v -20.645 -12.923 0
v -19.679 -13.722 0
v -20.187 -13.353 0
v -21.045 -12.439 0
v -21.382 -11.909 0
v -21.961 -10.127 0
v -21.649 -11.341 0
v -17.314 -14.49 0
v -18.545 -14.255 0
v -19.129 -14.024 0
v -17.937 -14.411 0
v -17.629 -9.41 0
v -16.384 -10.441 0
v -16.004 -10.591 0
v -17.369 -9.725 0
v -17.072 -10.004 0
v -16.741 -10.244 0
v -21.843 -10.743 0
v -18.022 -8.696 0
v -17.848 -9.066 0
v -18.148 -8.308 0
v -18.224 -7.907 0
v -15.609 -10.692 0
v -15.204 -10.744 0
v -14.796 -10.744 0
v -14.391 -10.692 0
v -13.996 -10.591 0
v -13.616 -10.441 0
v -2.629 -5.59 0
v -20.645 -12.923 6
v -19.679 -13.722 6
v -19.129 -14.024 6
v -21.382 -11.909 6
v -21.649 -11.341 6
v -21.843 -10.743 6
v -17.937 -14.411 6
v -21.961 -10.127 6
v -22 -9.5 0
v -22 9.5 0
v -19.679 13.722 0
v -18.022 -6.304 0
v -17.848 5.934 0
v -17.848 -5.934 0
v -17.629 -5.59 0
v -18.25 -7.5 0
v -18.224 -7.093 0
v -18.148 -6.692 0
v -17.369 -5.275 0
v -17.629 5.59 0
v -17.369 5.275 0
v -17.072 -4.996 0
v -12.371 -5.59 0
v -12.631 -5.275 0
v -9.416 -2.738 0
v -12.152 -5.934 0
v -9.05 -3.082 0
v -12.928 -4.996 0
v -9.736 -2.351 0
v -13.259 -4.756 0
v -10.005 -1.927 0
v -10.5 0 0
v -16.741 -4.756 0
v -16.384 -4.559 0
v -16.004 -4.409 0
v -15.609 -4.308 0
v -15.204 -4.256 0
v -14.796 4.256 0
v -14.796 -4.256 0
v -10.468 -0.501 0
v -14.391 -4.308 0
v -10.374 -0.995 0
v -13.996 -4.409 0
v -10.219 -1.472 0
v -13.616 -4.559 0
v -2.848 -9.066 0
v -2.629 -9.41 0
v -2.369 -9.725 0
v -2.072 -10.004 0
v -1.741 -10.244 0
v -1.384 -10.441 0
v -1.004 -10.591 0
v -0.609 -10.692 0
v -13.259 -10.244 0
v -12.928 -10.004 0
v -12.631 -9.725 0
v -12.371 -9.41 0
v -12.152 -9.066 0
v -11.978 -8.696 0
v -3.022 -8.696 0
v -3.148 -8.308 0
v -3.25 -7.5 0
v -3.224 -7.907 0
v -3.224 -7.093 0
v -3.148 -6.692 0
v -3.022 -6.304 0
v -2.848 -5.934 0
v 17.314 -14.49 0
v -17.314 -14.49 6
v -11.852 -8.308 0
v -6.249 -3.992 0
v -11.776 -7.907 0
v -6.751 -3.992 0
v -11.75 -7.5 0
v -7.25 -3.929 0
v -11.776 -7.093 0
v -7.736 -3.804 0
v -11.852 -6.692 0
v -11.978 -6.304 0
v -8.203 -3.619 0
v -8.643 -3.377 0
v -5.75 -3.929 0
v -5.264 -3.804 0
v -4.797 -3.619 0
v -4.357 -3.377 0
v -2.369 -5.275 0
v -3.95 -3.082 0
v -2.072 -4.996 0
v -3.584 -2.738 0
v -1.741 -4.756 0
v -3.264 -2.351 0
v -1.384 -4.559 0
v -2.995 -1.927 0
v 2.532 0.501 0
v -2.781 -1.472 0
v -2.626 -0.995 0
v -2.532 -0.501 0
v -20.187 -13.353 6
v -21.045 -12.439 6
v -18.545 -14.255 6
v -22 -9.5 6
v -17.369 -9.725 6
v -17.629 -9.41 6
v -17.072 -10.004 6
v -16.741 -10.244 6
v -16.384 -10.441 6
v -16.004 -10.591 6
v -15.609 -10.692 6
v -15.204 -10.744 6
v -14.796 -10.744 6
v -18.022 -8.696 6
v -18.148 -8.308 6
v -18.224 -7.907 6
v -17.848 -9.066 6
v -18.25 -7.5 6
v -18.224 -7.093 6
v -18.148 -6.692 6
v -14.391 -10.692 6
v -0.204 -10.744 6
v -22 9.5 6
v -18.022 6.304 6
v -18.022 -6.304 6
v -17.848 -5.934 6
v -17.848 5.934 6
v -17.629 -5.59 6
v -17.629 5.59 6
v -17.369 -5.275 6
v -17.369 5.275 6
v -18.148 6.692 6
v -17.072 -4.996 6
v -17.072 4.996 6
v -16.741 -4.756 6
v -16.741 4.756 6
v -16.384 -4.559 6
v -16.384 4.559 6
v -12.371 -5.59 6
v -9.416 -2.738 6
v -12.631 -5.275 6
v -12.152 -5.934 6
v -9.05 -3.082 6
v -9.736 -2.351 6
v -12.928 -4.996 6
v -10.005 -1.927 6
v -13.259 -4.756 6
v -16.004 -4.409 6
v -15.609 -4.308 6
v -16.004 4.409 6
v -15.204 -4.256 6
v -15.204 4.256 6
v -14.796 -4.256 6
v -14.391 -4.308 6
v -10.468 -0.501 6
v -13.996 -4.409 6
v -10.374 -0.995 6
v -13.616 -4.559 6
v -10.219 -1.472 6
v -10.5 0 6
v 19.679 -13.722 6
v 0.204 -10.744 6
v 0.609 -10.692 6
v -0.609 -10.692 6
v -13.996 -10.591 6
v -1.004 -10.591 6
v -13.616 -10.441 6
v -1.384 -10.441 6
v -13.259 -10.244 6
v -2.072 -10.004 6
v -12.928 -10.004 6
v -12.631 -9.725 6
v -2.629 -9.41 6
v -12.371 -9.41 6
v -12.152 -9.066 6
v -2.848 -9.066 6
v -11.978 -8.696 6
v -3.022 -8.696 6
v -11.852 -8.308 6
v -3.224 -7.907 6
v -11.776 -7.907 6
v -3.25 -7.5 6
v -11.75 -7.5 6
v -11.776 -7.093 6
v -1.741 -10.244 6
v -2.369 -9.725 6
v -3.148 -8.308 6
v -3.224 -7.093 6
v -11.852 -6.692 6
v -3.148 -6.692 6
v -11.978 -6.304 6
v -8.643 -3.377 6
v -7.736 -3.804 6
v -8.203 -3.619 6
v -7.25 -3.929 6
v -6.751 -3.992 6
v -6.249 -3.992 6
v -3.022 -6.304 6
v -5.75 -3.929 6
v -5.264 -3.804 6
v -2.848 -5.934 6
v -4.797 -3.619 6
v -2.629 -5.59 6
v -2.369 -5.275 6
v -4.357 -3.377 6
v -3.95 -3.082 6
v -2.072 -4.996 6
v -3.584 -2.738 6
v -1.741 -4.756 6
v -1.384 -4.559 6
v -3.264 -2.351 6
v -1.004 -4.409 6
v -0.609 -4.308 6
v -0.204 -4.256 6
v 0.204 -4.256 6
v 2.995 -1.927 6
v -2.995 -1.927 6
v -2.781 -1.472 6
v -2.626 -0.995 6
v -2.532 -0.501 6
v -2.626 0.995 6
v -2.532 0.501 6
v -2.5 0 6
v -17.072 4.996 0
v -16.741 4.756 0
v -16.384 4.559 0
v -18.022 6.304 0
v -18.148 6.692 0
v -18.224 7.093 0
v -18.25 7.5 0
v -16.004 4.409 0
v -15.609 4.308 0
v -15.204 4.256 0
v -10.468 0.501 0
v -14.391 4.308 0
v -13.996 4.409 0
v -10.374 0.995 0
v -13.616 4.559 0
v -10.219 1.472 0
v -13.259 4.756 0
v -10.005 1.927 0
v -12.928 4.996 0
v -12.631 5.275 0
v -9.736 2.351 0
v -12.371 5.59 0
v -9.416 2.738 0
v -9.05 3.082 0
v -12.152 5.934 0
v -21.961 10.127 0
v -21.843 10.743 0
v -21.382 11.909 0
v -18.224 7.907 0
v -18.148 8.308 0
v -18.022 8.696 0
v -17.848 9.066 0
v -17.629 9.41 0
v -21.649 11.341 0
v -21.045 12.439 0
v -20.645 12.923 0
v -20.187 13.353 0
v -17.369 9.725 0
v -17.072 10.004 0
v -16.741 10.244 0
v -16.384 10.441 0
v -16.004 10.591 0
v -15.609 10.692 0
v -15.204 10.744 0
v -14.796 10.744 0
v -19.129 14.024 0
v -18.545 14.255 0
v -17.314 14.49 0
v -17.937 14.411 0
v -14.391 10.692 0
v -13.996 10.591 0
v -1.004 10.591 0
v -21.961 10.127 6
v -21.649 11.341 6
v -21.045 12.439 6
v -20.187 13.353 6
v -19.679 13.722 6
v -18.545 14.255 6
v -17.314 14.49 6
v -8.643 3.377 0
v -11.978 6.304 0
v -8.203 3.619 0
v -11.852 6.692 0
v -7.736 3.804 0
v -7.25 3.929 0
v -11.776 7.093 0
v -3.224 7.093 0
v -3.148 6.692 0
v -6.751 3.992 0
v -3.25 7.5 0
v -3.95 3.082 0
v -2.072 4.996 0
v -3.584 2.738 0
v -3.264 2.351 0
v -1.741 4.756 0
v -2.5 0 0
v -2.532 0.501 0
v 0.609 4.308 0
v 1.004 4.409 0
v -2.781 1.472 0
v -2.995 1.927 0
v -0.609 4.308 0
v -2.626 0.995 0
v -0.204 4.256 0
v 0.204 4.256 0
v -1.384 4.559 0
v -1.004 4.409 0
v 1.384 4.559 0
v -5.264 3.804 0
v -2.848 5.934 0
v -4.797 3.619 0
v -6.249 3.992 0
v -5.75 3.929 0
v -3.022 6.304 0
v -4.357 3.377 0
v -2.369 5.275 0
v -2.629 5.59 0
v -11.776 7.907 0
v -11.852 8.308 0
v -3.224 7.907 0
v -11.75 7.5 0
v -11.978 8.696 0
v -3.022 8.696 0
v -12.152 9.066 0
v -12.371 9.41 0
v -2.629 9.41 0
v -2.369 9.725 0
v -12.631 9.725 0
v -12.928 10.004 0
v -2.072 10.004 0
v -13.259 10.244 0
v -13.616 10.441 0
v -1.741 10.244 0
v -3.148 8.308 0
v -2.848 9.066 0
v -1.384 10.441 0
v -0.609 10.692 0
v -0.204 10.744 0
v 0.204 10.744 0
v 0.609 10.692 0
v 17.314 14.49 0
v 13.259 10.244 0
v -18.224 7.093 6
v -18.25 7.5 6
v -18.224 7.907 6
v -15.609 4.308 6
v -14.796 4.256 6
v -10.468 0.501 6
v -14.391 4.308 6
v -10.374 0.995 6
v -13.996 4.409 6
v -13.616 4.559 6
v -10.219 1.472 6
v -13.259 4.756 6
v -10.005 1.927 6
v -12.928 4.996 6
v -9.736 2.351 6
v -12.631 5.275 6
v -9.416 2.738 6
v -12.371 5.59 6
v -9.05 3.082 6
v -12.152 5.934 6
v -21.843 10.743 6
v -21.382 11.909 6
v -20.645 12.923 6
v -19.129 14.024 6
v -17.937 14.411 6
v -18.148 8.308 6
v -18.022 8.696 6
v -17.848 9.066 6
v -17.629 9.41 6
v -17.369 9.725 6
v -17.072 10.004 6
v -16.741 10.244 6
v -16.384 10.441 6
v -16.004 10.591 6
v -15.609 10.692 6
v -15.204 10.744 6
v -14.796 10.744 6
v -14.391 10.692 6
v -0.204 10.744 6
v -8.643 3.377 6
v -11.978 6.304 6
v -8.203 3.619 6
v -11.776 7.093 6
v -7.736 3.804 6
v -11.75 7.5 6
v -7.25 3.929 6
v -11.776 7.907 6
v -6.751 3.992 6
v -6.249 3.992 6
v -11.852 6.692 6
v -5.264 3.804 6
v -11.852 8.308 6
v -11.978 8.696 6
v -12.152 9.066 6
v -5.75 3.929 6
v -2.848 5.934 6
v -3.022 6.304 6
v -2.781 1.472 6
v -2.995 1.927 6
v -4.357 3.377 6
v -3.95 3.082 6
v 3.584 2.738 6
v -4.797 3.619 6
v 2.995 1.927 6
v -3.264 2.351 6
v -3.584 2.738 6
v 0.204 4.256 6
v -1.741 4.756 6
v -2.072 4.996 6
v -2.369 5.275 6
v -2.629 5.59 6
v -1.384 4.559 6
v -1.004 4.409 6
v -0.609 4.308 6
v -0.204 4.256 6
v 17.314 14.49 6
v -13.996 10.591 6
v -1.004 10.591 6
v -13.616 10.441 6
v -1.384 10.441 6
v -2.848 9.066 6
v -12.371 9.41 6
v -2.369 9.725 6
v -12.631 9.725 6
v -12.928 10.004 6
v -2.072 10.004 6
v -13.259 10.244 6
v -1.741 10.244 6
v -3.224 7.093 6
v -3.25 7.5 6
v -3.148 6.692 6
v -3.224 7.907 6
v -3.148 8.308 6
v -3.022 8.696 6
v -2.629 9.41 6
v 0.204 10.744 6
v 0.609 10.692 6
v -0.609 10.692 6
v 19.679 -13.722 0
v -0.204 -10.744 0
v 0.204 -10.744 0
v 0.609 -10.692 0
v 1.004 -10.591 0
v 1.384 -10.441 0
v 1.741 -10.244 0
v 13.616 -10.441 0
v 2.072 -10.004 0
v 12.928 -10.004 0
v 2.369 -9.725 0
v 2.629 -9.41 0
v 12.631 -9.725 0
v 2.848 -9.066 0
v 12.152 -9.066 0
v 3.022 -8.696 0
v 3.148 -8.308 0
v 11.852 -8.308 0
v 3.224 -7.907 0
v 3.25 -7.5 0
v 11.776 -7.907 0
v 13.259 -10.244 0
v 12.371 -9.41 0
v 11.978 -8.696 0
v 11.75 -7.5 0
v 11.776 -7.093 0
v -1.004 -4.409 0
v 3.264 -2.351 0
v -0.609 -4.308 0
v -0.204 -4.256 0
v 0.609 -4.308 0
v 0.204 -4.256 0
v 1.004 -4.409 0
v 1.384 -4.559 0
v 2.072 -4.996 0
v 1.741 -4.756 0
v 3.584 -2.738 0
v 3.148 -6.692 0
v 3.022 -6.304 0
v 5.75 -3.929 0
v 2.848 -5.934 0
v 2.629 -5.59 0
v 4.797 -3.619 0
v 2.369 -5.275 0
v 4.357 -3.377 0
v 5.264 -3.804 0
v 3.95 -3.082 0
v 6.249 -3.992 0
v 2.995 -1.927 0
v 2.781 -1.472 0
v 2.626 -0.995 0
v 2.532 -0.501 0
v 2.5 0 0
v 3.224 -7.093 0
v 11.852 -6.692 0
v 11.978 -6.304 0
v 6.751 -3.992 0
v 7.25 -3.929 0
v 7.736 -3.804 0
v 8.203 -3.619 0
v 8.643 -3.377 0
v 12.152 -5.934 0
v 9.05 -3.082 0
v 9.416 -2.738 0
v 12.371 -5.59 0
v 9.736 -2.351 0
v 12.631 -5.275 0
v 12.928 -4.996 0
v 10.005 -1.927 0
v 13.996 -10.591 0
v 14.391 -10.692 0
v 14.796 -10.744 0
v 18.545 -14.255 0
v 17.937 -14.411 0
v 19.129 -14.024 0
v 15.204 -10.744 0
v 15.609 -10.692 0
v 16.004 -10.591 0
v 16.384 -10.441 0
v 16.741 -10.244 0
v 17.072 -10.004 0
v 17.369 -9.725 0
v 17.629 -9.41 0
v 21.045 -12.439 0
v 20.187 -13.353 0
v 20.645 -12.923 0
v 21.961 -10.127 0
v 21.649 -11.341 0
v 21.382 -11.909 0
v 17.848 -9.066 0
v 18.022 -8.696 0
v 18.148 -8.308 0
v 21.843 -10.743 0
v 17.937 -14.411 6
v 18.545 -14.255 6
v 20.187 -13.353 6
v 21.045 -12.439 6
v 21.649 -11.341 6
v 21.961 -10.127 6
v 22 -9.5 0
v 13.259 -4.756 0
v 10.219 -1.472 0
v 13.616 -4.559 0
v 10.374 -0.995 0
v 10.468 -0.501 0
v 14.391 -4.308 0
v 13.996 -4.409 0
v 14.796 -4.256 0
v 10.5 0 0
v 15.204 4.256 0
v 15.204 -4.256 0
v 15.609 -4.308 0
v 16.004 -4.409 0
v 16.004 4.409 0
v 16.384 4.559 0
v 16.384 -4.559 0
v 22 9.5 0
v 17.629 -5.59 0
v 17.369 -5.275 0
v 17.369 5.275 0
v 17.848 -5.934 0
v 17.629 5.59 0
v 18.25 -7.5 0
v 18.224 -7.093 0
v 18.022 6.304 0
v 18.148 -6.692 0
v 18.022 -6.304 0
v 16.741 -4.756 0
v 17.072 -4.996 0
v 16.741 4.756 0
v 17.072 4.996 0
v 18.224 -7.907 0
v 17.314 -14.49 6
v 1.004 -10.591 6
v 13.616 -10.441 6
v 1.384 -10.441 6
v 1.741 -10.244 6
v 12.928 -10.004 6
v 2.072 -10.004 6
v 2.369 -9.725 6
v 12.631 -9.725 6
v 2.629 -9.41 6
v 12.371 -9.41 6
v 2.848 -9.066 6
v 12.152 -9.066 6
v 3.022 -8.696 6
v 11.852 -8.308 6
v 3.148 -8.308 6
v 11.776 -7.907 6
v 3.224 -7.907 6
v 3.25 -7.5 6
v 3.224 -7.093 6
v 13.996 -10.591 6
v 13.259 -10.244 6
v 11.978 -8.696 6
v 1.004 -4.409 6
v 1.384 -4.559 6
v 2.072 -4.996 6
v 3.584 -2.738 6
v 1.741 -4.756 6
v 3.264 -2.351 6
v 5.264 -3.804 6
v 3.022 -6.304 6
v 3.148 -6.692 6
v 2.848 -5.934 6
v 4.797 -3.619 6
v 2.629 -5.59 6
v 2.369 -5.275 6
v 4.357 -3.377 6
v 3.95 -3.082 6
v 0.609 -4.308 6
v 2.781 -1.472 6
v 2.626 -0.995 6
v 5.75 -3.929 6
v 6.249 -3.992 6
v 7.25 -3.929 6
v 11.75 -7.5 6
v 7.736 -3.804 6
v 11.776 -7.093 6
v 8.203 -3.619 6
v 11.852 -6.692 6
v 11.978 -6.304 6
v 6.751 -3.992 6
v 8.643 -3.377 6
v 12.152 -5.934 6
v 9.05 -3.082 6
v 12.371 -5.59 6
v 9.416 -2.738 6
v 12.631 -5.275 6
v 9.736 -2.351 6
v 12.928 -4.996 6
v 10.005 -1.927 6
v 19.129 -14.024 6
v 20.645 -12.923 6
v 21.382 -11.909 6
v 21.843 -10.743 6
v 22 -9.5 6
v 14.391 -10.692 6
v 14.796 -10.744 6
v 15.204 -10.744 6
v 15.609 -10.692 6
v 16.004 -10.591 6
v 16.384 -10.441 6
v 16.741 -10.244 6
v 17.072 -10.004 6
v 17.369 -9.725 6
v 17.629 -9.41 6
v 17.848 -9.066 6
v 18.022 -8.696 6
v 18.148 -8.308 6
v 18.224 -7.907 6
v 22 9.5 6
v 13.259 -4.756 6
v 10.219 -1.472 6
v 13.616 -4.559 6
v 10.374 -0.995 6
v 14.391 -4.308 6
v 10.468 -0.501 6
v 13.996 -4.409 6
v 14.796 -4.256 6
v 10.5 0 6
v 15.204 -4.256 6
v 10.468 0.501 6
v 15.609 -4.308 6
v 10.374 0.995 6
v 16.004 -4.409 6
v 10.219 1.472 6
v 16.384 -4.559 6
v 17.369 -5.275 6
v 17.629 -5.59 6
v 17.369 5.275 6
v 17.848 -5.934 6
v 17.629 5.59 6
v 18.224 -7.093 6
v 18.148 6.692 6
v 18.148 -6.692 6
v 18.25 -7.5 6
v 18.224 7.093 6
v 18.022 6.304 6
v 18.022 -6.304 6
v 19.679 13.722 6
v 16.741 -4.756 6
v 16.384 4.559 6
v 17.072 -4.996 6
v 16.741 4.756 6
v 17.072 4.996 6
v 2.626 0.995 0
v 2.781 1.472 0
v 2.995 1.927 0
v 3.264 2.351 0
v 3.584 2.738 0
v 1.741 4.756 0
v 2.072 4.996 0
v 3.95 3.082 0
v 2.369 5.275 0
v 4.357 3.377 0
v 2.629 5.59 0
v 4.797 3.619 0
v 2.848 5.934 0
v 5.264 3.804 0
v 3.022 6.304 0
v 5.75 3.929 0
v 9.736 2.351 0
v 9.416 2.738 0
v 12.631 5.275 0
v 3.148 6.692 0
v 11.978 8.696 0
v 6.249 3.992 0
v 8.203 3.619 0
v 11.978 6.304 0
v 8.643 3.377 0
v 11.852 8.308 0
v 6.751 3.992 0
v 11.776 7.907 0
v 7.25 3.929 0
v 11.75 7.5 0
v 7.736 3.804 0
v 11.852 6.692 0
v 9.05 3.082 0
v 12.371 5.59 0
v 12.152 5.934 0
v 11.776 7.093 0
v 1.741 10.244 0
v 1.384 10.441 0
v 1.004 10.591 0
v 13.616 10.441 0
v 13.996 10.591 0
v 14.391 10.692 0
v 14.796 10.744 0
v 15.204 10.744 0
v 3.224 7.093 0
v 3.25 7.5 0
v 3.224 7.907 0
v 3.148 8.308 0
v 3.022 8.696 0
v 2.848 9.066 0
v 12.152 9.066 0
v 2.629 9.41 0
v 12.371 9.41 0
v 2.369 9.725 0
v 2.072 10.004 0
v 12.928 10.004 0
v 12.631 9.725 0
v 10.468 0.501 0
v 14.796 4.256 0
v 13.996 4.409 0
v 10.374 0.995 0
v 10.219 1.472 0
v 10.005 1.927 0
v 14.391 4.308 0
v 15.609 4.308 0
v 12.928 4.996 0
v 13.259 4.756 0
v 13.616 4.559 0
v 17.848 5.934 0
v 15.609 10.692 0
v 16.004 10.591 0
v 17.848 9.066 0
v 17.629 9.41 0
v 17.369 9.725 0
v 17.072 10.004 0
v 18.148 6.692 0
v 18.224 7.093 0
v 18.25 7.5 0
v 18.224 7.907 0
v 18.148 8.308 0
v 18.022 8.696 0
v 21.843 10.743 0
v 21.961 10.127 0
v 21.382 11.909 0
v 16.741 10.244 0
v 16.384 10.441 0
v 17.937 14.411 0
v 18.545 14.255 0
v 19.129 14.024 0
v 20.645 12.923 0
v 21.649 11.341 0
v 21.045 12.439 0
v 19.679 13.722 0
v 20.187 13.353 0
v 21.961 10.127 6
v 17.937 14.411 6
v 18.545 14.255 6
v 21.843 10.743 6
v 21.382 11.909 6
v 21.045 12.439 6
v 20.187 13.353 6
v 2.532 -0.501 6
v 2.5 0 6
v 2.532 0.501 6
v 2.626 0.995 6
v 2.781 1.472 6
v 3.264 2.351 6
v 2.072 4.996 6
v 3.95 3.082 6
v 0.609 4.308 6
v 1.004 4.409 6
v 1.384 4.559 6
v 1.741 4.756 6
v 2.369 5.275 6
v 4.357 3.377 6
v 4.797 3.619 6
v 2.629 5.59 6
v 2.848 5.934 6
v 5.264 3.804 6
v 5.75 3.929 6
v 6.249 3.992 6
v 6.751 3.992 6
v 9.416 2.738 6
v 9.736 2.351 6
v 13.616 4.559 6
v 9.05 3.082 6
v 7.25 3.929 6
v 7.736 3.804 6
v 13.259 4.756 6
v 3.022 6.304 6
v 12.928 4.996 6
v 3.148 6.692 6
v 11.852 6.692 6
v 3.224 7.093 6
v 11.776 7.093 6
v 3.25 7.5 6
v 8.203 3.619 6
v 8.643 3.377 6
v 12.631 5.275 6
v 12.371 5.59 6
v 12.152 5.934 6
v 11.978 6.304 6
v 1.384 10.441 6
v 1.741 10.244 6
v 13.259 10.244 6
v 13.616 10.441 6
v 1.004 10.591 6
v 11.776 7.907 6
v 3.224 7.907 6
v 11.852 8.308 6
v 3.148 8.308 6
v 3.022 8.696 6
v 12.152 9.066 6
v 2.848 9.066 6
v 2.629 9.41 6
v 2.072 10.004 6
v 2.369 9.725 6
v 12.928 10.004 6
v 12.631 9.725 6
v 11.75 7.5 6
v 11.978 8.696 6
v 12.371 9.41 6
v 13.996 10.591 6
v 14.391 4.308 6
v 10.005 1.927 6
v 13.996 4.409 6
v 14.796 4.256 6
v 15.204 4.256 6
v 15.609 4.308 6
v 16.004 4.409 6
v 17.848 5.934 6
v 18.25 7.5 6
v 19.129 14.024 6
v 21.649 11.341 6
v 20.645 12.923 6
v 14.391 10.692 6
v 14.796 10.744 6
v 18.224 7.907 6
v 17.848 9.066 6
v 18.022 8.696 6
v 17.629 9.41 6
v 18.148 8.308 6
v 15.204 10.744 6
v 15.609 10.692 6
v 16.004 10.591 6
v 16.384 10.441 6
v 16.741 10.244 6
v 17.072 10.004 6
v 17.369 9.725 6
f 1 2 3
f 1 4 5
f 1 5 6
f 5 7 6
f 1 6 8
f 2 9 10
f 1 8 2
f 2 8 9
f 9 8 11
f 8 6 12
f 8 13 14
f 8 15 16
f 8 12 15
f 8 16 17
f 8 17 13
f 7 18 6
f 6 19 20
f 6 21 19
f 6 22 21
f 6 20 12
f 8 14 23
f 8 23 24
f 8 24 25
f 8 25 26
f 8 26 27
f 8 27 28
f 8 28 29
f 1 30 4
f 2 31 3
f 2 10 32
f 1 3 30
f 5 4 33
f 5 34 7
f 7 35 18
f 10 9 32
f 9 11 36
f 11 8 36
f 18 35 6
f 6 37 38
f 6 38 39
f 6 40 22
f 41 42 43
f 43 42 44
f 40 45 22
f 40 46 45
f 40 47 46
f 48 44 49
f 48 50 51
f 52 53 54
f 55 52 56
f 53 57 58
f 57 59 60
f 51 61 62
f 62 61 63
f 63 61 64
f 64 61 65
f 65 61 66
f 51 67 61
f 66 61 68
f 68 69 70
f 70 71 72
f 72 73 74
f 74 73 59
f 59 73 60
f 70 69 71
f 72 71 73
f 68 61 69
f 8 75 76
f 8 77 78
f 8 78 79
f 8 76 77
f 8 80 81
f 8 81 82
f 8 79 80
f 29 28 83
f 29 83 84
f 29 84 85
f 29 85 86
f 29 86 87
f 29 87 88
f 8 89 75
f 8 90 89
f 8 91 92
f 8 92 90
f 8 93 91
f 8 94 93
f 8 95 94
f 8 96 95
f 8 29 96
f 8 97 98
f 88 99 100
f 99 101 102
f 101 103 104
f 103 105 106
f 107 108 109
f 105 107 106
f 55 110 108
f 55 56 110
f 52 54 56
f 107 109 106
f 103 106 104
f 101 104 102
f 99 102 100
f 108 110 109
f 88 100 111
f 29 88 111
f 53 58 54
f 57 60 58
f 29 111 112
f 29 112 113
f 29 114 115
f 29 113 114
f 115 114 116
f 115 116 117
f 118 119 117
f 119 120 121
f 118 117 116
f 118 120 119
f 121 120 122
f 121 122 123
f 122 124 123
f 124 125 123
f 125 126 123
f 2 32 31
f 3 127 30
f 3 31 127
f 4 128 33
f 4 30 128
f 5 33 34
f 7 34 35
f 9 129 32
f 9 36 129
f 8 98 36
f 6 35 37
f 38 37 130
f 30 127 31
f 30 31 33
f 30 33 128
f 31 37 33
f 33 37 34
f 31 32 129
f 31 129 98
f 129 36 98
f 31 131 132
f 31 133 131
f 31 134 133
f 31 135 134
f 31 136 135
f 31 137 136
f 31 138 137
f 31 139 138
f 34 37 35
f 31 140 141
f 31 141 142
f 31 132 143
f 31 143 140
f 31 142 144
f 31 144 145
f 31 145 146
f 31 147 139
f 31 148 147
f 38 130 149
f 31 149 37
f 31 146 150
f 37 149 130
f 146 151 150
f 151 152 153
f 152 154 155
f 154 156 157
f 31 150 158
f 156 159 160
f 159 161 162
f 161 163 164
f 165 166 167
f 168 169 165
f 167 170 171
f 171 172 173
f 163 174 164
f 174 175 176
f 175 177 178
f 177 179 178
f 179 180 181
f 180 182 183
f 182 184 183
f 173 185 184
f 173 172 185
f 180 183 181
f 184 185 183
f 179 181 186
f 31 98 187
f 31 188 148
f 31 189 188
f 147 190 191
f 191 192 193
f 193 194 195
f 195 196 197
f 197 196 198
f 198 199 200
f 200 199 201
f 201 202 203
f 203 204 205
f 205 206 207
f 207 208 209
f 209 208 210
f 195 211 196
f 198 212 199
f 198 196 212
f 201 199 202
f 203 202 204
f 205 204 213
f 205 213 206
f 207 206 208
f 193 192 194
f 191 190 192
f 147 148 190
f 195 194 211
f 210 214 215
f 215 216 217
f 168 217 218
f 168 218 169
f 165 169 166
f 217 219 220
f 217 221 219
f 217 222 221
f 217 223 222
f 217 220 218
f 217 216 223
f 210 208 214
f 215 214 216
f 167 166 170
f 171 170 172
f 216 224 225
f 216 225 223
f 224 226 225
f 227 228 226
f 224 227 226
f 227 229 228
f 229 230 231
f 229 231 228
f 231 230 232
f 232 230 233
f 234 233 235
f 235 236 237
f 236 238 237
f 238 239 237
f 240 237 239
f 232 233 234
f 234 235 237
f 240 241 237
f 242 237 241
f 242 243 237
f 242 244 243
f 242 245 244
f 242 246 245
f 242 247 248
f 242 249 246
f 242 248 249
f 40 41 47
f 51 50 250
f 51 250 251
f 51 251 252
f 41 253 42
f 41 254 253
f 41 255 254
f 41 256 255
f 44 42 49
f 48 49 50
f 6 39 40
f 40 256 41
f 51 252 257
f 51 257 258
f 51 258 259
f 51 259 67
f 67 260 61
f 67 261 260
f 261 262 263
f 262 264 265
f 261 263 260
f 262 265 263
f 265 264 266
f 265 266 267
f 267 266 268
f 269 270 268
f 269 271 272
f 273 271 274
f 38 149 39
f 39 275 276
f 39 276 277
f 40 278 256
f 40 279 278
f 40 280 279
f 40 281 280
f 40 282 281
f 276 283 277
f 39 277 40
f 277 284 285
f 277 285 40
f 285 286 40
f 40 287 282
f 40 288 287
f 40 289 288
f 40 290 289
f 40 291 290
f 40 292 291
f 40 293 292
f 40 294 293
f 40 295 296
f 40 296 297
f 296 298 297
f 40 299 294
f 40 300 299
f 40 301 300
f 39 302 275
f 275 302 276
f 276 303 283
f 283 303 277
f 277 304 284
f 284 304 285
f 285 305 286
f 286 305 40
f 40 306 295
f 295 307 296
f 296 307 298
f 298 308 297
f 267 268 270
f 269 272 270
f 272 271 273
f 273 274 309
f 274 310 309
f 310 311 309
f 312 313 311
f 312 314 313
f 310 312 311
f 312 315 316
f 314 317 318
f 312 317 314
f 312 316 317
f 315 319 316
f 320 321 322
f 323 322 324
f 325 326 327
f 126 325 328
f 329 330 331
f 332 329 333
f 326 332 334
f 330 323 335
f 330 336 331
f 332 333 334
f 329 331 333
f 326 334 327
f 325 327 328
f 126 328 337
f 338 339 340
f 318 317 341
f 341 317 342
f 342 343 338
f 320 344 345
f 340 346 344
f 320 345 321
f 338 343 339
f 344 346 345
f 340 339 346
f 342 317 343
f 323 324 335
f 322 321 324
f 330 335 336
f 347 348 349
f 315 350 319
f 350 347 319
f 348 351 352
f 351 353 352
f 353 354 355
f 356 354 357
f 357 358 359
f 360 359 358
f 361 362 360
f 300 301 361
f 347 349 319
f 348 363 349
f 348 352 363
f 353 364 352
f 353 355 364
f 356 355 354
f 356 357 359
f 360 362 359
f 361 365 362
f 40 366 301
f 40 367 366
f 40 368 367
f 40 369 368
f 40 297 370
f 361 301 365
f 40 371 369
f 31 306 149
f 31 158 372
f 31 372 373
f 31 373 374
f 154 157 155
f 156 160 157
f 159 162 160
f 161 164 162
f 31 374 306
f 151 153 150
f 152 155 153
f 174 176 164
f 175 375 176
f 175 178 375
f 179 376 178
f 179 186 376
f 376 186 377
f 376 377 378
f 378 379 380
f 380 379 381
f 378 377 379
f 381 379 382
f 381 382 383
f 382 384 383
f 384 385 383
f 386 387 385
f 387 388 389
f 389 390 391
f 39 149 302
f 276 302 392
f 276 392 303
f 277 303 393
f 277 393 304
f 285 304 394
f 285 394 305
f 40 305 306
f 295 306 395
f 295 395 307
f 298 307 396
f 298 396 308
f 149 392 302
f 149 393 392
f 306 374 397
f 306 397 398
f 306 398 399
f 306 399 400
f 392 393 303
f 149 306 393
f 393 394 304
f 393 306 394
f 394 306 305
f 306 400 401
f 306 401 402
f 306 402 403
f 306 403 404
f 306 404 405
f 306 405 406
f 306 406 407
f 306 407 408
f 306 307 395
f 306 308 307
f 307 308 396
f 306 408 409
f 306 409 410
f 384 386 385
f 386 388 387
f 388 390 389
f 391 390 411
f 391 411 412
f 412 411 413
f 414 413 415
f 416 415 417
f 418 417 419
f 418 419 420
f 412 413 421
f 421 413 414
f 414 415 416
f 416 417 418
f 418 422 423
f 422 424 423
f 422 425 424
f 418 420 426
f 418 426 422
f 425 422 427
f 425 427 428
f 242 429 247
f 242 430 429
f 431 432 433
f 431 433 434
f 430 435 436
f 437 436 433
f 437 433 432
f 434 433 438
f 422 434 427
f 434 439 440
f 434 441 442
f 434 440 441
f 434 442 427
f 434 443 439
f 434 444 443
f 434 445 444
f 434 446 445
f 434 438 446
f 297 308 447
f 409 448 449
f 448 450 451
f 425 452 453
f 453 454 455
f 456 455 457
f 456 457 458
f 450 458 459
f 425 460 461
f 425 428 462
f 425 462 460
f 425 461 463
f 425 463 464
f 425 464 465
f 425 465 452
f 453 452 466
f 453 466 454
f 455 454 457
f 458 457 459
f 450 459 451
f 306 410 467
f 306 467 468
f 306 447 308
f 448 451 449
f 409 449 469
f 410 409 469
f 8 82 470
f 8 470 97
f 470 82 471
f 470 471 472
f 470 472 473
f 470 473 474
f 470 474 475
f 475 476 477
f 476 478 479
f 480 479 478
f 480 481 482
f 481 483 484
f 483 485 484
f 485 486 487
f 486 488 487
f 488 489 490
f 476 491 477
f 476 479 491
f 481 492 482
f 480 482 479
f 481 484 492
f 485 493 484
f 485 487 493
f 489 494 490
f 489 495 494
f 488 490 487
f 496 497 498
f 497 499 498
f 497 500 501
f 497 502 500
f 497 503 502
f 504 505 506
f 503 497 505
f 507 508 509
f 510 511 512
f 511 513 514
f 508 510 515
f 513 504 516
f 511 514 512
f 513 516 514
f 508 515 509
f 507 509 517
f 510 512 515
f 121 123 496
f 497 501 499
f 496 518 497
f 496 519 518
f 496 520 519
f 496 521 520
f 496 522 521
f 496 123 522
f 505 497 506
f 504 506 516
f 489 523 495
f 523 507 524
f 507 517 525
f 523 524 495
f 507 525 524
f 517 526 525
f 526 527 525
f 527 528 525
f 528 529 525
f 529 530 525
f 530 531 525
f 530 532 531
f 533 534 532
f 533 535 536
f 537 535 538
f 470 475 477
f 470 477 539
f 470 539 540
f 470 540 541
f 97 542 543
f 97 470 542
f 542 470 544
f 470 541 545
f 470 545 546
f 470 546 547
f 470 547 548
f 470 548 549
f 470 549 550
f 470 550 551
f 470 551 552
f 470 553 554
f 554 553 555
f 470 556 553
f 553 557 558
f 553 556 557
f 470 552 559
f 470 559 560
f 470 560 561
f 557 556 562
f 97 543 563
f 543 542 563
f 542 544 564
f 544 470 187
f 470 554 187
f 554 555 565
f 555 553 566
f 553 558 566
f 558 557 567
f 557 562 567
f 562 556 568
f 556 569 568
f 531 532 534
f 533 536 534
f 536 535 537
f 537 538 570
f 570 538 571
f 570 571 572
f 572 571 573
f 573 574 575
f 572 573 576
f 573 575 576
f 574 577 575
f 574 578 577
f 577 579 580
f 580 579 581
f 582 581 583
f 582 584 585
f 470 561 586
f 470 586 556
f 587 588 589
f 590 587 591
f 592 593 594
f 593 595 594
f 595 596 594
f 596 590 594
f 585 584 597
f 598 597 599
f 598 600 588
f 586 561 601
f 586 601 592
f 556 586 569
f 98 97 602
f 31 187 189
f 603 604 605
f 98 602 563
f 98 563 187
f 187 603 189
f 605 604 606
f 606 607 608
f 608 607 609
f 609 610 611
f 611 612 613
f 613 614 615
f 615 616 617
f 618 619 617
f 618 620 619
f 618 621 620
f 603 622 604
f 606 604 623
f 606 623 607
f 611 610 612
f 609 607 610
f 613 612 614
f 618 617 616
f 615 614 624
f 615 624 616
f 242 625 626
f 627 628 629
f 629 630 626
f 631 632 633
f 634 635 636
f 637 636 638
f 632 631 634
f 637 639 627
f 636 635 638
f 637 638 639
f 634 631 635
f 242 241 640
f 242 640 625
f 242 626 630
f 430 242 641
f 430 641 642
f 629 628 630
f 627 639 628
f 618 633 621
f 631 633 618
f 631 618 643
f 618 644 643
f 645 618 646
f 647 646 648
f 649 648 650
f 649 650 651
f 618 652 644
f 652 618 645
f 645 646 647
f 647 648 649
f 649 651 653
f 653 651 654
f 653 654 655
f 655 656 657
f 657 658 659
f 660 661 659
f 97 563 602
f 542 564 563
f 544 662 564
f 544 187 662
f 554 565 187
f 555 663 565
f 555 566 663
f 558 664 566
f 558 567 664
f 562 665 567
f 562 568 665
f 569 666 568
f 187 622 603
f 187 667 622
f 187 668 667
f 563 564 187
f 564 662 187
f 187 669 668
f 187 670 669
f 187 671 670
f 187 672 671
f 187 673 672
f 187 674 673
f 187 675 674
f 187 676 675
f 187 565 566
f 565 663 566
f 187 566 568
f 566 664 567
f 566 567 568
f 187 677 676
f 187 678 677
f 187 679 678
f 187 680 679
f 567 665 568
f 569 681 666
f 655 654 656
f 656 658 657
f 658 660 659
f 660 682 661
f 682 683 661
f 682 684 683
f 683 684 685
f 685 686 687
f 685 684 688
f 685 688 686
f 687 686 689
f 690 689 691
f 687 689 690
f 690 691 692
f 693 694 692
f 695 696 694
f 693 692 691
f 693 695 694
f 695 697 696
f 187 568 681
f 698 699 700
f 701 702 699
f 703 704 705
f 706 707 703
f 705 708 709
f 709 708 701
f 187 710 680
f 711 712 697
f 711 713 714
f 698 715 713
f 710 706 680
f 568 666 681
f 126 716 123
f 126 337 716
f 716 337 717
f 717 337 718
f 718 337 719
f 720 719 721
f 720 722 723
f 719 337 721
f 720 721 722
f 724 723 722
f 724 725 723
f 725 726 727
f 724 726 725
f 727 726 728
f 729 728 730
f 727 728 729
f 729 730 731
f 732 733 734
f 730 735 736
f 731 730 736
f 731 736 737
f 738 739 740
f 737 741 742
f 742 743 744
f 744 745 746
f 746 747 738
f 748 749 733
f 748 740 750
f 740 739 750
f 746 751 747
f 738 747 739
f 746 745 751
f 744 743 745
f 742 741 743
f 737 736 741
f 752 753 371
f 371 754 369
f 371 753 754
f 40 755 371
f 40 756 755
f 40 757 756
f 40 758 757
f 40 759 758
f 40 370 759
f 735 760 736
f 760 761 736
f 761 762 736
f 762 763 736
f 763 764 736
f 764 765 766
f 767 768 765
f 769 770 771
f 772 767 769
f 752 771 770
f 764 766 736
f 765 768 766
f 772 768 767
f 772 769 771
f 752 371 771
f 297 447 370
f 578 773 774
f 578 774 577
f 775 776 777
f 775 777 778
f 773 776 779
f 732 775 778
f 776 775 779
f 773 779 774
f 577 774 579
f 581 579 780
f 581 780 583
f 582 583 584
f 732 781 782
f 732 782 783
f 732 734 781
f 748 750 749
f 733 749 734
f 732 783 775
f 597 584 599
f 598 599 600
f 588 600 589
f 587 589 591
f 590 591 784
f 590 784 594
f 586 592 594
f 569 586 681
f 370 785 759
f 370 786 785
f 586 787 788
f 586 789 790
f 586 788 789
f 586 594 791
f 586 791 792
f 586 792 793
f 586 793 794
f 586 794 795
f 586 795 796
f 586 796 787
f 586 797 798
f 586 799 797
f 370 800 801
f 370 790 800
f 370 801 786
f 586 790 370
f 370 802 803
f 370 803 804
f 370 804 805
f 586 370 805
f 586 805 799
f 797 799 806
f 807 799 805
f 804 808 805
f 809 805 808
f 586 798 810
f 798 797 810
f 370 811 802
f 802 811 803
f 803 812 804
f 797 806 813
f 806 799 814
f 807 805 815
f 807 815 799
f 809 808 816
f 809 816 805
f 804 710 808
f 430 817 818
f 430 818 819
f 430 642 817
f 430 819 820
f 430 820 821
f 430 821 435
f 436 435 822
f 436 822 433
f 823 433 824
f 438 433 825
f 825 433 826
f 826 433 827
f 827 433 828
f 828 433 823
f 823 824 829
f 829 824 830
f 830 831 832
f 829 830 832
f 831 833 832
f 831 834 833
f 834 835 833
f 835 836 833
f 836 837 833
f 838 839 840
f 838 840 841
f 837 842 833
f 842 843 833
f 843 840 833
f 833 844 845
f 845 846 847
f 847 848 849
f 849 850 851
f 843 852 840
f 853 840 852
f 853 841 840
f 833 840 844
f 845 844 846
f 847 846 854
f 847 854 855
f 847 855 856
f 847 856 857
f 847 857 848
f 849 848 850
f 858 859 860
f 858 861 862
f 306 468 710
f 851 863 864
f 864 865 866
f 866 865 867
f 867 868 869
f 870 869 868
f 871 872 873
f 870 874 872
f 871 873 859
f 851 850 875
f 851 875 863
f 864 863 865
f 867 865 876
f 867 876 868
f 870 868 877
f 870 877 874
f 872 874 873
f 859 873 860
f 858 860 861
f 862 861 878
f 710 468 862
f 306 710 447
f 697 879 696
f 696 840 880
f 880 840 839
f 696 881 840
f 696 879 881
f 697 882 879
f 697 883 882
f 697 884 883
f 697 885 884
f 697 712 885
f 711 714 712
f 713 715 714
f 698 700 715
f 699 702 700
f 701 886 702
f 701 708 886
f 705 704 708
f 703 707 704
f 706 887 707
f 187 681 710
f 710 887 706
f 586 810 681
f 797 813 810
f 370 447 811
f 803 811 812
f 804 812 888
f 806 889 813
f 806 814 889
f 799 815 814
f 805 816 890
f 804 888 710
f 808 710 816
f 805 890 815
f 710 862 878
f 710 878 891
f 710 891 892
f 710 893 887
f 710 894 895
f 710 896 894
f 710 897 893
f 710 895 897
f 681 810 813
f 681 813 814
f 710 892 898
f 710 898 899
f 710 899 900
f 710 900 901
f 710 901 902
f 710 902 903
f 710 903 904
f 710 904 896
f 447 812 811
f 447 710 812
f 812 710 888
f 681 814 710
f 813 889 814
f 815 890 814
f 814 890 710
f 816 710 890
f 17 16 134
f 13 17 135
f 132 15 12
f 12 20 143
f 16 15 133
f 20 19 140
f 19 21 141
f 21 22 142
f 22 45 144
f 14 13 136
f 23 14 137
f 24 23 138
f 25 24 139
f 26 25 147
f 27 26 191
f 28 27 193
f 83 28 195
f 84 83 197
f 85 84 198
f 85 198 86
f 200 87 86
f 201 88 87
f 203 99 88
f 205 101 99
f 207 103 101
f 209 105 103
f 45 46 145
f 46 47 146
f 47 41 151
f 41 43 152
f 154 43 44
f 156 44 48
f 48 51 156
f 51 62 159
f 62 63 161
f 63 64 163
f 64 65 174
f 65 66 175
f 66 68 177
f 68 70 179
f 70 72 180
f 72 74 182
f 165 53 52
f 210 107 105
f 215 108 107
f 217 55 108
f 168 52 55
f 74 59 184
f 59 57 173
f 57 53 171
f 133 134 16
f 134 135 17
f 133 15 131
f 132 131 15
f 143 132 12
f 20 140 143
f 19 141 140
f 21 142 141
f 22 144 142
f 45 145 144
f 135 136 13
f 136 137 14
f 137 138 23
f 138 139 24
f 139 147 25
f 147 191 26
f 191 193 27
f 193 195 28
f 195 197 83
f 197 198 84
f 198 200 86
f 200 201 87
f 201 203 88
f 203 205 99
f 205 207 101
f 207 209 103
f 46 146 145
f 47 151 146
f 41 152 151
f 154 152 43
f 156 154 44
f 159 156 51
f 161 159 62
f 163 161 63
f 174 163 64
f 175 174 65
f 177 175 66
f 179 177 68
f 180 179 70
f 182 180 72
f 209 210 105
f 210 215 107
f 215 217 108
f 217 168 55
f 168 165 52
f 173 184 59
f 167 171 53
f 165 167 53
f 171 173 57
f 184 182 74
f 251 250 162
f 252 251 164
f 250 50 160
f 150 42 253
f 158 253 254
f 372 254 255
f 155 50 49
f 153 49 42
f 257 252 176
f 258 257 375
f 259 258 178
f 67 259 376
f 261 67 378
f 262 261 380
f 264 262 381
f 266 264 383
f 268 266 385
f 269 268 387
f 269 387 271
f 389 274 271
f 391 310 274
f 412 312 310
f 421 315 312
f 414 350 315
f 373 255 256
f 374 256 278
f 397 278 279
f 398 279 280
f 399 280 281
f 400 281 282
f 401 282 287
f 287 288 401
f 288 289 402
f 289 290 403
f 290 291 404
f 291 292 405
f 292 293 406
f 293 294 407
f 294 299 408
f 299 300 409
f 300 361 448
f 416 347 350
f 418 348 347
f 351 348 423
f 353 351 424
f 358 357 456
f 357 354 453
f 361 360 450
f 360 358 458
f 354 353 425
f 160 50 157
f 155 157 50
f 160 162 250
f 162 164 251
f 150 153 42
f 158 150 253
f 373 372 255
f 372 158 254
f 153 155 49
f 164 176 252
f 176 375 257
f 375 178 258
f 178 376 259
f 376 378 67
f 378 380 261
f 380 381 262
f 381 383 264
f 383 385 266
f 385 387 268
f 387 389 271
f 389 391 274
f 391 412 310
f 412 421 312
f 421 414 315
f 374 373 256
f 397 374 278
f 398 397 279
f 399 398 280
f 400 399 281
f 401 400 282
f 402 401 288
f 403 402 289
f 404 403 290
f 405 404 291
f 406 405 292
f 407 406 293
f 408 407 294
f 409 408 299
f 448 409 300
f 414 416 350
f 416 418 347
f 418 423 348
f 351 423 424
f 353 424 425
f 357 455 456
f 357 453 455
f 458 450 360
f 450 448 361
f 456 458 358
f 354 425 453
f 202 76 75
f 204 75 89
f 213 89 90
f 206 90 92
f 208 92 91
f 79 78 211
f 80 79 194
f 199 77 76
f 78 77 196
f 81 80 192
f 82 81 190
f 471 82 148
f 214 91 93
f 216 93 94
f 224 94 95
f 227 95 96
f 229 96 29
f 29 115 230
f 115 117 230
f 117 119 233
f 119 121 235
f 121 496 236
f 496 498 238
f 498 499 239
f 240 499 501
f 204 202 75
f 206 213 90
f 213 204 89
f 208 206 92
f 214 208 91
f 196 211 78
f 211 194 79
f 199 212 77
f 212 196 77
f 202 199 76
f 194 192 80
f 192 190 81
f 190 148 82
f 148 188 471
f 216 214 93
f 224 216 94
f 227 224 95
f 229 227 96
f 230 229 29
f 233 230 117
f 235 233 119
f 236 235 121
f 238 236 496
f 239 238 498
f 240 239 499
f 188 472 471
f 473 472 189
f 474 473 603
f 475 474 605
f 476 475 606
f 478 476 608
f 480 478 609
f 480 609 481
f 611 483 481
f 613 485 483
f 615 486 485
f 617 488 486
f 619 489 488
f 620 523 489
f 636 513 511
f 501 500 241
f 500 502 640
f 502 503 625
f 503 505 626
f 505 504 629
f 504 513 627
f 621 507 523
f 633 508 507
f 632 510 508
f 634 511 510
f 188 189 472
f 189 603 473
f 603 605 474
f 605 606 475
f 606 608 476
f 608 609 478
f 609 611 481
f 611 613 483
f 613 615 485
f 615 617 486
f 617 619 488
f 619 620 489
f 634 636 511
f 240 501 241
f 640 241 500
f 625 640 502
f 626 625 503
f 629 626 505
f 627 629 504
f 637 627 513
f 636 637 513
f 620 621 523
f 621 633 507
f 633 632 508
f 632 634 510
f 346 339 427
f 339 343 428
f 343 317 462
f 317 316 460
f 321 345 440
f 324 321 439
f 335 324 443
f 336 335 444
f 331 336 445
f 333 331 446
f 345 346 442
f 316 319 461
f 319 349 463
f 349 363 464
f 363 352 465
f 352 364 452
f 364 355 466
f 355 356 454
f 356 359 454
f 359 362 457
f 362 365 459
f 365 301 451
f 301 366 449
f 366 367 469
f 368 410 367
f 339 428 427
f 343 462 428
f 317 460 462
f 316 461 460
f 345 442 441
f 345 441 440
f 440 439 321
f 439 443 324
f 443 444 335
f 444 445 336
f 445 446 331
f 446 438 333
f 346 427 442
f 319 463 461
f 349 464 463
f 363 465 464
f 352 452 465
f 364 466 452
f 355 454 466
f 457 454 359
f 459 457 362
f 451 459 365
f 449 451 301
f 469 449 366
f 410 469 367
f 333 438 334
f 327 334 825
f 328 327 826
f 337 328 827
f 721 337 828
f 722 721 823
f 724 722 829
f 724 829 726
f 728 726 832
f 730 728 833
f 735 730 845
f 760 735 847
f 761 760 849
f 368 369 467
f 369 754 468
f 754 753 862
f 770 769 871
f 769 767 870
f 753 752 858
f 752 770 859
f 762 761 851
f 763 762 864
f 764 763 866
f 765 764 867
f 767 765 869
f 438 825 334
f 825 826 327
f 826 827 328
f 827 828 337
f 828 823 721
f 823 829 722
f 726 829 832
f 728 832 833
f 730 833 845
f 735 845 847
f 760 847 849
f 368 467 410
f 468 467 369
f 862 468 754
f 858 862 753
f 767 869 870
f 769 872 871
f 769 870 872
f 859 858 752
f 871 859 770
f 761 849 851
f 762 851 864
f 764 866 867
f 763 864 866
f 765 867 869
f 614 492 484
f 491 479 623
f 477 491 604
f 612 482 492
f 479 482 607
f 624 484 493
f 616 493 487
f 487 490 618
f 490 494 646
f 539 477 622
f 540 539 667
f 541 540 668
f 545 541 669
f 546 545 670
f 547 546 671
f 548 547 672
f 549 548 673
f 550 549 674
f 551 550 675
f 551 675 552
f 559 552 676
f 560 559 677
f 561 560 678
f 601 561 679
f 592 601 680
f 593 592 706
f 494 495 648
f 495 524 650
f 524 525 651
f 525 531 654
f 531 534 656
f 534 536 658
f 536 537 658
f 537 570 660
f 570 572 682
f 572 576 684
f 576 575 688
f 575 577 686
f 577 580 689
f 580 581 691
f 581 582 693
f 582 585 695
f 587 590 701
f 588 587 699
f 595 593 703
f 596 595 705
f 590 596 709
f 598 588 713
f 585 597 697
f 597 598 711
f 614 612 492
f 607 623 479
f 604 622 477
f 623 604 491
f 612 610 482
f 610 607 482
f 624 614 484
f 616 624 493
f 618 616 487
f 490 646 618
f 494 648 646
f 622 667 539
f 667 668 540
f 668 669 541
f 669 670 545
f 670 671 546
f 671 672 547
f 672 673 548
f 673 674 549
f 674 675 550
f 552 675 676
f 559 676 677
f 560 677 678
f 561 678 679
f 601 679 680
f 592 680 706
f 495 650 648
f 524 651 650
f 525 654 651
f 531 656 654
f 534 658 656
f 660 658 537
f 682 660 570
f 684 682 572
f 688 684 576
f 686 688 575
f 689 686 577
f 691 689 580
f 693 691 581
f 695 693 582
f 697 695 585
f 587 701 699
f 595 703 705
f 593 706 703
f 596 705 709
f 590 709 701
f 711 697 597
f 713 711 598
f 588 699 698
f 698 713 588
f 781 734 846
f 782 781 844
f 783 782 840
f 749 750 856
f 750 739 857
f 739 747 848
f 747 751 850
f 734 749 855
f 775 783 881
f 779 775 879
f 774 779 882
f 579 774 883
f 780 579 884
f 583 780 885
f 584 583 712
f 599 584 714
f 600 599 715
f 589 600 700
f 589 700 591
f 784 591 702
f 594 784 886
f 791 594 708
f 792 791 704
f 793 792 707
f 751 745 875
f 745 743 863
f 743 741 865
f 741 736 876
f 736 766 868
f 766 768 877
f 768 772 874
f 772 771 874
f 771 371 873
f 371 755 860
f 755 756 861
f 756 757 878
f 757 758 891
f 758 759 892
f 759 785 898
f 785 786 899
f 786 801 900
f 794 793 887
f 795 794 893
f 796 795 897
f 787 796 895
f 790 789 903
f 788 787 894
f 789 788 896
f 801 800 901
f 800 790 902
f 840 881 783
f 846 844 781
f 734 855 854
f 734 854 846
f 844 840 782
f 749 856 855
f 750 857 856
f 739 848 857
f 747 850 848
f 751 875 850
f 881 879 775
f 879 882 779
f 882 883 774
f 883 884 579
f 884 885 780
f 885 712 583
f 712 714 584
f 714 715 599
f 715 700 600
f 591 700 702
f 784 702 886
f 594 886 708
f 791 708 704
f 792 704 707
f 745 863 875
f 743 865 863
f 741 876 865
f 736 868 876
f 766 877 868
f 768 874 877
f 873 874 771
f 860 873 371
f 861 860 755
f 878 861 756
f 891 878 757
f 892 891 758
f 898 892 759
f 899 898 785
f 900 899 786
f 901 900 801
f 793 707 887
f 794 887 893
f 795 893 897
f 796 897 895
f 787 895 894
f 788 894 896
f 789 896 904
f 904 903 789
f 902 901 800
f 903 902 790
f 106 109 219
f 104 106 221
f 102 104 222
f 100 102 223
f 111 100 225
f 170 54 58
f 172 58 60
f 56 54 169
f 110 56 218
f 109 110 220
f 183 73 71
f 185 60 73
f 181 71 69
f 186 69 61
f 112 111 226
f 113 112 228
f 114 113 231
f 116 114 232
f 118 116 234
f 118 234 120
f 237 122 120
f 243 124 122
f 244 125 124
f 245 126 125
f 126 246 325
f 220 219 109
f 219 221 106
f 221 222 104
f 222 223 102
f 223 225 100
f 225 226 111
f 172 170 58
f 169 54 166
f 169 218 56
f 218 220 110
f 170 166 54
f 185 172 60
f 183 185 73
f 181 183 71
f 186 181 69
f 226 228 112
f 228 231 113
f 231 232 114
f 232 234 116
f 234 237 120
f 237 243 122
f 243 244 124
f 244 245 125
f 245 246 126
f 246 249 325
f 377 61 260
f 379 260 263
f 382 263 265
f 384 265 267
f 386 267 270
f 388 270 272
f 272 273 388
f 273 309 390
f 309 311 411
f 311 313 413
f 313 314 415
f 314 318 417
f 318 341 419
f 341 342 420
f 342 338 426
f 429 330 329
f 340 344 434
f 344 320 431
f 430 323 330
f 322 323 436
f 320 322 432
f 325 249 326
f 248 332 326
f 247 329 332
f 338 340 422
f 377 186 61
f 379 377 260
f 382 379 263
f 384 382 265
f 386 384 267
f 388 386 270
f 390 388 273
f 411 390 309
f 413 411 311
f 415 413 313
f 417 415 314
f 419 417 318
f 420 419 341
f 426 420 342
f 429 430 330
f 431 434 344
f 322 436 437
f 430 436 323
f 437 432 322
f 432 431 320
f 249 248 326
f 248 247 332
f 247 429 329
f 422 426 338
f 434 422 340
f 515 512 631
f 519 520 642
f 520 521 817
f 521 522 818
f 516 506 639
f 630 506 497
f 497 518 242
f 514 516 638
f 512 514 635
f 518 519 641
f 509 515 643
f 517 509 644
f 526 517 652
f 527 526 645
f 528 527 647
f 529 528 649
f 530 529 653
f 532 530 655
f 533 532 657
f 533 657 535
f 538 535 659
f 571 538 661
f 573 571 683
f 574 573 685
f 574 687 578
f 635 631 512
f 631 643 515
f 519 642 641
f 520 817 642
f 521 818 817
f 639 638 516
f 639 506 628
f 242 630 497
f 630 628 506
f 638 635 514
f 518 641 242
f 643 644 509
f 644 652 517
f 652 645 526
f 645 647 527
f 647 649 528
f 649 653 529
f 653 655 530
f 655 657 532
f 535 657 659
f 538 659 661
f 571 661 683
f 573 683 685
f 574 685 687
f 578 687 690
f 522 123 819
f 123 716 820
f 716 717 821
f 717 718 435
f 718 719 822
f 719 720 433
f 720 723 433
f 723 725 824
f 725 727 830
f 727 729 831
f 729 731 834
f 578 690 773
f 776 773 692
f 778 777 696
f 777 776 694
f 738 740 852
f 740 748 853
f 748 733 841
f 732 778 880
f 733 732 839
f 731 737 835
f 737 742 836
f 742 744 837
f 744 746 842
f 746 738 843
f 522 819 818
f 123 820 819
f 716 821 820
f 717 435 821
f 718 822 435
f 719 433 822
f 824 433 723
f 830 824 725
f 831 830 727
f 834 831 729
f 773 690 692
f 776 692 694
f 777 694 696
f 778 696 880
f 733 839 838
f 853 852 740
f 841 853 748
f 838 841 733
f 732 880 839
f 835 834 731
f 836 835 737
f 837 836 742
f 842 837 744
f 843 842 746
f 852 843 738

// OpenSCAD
$fn = 50;

difference() {
	union() {
		hull() {
			translate(v = [-17.0, 9.5, 0]) {
				cylinder(h = 6, r = 5);
			}
			translate(v = [17.0, 9.5, 0]) {
				cylinder(h = 6, r = 5);
			}
			translate(v = [-17.0, -9.5, 0]) {
				cylinder(h = 6, r = 5);
			}
			translate(v = [17.0, -9.5, 0]) {
				cylinder(h = 6, r = 5);
			}
		}
	}
	union() {
		translate(v = [-15.0, -7.5, 0]) {
			cylinder(h = 6, r = 3.25);
		}
		translate(v = [-15.0, 7.5, 0]) {
			cylinder(h = 6, r = 3.25);
		}
		translate(v = [0.0, -7.5, 0]) {
			cylinder(h = 6, r = 3.25);
		}
		translate(v = [0.0, 7.5, 0]) {
			cylinder(h = 6, r = 3.25);
		}
		translate(v = [15.0, -7.5, 0]) {
			cylinder(h = 6, r = 3.25);
		}
		translate(v = [15.0, 7.5, 0]) {
			cylinder(h = 6, r = 3.25);
		}
		translate(v = [-6.5, 0, 0.0]) {
			cylinder(h = 6, r = 4.0);
		}
		translate(v = [6.5, 0, 0.0]) {
			cylinder(h = 6, r = 4.0);
		}
	}
}
